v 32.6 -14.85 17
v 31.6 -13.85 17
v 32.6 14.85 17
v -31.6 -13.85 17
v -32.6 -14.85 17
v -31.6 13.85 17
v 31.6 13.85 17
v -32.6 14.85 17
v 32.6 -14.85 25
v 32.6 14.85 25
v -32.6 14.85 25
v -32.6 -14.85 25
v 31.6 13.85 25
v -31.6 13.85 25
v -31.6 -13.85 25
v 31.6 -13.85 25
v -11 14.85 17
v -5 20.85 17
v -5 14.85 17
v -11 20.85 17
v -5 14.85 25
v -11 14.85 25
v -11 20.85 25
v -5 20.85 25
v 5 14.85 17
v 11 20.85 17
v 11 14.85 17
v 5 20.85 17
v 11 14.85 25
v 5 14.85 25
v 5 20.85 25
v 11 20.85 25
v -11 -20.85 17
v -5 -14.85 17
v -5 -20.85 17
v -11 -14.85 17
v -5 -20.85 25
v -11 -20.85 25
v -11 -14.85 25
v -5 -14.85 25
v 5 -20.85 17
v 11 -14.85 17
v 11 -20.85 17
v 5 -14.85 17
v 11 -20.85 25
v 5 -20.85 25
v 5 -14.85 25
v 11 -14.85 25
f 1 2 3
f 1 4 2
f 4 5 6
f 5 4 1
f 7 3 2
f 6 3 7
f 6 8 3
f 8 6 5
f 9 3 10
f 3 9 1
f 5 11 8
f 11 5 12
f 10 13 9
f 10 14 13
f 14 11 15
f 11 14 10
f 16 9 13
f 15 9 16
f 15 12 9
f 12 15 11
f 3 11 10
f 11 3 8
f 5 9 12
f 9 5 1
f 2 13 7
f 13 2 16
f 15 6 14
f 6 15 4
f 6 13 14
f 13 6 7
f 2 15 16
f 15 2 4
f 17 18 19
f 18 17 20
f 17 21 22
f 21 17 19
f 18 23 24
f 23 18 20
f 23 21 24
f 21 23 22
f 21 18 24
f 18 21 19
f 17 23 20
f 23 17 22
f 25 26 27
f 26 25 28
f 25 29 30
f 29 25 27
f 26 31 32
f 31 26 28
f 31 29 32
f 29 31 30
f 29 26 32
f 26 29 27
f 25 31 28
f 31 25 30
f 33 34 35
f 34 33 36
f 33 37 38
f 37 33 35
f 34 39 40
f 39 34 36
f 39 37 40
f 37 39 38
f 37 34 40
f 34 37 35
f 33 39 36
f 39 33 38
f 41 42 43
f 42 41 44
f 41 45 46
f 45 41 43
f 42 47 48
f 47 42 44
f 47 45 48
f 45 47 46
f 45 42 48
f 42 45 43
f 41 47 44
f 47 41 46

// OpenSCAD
translate ([0, 0, 21]) {
  rotate (a=90.0, v=[0, 1, 0]) {
    union () {
      difference () {
        cube ([8, 29.7, 65.2], center=true);
        cube ([1000, 27.7, 63.2], center=true);
      }
      translate ([0, 17.85, 0]) {
        rotate (a=90.0, v=[1, 0, 0]) {
          union () {
            translate ([0, -8, 0]) {
              cube ([8, 6, 6], center=true);
            }
            translate ([0, 8, 0]) {
              cube ([8, 6, 6], center=true);
            }
          }
        }
      }
      translate ([0, -17.85, 0]) {
        rotate (a=90.0, v=[1, 0, 0]) {
          union () {
            translate ([0, -8, 0]) {
              cube ([8, 6, 6], center=true);
            }
            translate ([0, 8, 0]) {
              cube ([8, 6, 6], center=true);
            }
          }
        }
      }
    }
  }
}
